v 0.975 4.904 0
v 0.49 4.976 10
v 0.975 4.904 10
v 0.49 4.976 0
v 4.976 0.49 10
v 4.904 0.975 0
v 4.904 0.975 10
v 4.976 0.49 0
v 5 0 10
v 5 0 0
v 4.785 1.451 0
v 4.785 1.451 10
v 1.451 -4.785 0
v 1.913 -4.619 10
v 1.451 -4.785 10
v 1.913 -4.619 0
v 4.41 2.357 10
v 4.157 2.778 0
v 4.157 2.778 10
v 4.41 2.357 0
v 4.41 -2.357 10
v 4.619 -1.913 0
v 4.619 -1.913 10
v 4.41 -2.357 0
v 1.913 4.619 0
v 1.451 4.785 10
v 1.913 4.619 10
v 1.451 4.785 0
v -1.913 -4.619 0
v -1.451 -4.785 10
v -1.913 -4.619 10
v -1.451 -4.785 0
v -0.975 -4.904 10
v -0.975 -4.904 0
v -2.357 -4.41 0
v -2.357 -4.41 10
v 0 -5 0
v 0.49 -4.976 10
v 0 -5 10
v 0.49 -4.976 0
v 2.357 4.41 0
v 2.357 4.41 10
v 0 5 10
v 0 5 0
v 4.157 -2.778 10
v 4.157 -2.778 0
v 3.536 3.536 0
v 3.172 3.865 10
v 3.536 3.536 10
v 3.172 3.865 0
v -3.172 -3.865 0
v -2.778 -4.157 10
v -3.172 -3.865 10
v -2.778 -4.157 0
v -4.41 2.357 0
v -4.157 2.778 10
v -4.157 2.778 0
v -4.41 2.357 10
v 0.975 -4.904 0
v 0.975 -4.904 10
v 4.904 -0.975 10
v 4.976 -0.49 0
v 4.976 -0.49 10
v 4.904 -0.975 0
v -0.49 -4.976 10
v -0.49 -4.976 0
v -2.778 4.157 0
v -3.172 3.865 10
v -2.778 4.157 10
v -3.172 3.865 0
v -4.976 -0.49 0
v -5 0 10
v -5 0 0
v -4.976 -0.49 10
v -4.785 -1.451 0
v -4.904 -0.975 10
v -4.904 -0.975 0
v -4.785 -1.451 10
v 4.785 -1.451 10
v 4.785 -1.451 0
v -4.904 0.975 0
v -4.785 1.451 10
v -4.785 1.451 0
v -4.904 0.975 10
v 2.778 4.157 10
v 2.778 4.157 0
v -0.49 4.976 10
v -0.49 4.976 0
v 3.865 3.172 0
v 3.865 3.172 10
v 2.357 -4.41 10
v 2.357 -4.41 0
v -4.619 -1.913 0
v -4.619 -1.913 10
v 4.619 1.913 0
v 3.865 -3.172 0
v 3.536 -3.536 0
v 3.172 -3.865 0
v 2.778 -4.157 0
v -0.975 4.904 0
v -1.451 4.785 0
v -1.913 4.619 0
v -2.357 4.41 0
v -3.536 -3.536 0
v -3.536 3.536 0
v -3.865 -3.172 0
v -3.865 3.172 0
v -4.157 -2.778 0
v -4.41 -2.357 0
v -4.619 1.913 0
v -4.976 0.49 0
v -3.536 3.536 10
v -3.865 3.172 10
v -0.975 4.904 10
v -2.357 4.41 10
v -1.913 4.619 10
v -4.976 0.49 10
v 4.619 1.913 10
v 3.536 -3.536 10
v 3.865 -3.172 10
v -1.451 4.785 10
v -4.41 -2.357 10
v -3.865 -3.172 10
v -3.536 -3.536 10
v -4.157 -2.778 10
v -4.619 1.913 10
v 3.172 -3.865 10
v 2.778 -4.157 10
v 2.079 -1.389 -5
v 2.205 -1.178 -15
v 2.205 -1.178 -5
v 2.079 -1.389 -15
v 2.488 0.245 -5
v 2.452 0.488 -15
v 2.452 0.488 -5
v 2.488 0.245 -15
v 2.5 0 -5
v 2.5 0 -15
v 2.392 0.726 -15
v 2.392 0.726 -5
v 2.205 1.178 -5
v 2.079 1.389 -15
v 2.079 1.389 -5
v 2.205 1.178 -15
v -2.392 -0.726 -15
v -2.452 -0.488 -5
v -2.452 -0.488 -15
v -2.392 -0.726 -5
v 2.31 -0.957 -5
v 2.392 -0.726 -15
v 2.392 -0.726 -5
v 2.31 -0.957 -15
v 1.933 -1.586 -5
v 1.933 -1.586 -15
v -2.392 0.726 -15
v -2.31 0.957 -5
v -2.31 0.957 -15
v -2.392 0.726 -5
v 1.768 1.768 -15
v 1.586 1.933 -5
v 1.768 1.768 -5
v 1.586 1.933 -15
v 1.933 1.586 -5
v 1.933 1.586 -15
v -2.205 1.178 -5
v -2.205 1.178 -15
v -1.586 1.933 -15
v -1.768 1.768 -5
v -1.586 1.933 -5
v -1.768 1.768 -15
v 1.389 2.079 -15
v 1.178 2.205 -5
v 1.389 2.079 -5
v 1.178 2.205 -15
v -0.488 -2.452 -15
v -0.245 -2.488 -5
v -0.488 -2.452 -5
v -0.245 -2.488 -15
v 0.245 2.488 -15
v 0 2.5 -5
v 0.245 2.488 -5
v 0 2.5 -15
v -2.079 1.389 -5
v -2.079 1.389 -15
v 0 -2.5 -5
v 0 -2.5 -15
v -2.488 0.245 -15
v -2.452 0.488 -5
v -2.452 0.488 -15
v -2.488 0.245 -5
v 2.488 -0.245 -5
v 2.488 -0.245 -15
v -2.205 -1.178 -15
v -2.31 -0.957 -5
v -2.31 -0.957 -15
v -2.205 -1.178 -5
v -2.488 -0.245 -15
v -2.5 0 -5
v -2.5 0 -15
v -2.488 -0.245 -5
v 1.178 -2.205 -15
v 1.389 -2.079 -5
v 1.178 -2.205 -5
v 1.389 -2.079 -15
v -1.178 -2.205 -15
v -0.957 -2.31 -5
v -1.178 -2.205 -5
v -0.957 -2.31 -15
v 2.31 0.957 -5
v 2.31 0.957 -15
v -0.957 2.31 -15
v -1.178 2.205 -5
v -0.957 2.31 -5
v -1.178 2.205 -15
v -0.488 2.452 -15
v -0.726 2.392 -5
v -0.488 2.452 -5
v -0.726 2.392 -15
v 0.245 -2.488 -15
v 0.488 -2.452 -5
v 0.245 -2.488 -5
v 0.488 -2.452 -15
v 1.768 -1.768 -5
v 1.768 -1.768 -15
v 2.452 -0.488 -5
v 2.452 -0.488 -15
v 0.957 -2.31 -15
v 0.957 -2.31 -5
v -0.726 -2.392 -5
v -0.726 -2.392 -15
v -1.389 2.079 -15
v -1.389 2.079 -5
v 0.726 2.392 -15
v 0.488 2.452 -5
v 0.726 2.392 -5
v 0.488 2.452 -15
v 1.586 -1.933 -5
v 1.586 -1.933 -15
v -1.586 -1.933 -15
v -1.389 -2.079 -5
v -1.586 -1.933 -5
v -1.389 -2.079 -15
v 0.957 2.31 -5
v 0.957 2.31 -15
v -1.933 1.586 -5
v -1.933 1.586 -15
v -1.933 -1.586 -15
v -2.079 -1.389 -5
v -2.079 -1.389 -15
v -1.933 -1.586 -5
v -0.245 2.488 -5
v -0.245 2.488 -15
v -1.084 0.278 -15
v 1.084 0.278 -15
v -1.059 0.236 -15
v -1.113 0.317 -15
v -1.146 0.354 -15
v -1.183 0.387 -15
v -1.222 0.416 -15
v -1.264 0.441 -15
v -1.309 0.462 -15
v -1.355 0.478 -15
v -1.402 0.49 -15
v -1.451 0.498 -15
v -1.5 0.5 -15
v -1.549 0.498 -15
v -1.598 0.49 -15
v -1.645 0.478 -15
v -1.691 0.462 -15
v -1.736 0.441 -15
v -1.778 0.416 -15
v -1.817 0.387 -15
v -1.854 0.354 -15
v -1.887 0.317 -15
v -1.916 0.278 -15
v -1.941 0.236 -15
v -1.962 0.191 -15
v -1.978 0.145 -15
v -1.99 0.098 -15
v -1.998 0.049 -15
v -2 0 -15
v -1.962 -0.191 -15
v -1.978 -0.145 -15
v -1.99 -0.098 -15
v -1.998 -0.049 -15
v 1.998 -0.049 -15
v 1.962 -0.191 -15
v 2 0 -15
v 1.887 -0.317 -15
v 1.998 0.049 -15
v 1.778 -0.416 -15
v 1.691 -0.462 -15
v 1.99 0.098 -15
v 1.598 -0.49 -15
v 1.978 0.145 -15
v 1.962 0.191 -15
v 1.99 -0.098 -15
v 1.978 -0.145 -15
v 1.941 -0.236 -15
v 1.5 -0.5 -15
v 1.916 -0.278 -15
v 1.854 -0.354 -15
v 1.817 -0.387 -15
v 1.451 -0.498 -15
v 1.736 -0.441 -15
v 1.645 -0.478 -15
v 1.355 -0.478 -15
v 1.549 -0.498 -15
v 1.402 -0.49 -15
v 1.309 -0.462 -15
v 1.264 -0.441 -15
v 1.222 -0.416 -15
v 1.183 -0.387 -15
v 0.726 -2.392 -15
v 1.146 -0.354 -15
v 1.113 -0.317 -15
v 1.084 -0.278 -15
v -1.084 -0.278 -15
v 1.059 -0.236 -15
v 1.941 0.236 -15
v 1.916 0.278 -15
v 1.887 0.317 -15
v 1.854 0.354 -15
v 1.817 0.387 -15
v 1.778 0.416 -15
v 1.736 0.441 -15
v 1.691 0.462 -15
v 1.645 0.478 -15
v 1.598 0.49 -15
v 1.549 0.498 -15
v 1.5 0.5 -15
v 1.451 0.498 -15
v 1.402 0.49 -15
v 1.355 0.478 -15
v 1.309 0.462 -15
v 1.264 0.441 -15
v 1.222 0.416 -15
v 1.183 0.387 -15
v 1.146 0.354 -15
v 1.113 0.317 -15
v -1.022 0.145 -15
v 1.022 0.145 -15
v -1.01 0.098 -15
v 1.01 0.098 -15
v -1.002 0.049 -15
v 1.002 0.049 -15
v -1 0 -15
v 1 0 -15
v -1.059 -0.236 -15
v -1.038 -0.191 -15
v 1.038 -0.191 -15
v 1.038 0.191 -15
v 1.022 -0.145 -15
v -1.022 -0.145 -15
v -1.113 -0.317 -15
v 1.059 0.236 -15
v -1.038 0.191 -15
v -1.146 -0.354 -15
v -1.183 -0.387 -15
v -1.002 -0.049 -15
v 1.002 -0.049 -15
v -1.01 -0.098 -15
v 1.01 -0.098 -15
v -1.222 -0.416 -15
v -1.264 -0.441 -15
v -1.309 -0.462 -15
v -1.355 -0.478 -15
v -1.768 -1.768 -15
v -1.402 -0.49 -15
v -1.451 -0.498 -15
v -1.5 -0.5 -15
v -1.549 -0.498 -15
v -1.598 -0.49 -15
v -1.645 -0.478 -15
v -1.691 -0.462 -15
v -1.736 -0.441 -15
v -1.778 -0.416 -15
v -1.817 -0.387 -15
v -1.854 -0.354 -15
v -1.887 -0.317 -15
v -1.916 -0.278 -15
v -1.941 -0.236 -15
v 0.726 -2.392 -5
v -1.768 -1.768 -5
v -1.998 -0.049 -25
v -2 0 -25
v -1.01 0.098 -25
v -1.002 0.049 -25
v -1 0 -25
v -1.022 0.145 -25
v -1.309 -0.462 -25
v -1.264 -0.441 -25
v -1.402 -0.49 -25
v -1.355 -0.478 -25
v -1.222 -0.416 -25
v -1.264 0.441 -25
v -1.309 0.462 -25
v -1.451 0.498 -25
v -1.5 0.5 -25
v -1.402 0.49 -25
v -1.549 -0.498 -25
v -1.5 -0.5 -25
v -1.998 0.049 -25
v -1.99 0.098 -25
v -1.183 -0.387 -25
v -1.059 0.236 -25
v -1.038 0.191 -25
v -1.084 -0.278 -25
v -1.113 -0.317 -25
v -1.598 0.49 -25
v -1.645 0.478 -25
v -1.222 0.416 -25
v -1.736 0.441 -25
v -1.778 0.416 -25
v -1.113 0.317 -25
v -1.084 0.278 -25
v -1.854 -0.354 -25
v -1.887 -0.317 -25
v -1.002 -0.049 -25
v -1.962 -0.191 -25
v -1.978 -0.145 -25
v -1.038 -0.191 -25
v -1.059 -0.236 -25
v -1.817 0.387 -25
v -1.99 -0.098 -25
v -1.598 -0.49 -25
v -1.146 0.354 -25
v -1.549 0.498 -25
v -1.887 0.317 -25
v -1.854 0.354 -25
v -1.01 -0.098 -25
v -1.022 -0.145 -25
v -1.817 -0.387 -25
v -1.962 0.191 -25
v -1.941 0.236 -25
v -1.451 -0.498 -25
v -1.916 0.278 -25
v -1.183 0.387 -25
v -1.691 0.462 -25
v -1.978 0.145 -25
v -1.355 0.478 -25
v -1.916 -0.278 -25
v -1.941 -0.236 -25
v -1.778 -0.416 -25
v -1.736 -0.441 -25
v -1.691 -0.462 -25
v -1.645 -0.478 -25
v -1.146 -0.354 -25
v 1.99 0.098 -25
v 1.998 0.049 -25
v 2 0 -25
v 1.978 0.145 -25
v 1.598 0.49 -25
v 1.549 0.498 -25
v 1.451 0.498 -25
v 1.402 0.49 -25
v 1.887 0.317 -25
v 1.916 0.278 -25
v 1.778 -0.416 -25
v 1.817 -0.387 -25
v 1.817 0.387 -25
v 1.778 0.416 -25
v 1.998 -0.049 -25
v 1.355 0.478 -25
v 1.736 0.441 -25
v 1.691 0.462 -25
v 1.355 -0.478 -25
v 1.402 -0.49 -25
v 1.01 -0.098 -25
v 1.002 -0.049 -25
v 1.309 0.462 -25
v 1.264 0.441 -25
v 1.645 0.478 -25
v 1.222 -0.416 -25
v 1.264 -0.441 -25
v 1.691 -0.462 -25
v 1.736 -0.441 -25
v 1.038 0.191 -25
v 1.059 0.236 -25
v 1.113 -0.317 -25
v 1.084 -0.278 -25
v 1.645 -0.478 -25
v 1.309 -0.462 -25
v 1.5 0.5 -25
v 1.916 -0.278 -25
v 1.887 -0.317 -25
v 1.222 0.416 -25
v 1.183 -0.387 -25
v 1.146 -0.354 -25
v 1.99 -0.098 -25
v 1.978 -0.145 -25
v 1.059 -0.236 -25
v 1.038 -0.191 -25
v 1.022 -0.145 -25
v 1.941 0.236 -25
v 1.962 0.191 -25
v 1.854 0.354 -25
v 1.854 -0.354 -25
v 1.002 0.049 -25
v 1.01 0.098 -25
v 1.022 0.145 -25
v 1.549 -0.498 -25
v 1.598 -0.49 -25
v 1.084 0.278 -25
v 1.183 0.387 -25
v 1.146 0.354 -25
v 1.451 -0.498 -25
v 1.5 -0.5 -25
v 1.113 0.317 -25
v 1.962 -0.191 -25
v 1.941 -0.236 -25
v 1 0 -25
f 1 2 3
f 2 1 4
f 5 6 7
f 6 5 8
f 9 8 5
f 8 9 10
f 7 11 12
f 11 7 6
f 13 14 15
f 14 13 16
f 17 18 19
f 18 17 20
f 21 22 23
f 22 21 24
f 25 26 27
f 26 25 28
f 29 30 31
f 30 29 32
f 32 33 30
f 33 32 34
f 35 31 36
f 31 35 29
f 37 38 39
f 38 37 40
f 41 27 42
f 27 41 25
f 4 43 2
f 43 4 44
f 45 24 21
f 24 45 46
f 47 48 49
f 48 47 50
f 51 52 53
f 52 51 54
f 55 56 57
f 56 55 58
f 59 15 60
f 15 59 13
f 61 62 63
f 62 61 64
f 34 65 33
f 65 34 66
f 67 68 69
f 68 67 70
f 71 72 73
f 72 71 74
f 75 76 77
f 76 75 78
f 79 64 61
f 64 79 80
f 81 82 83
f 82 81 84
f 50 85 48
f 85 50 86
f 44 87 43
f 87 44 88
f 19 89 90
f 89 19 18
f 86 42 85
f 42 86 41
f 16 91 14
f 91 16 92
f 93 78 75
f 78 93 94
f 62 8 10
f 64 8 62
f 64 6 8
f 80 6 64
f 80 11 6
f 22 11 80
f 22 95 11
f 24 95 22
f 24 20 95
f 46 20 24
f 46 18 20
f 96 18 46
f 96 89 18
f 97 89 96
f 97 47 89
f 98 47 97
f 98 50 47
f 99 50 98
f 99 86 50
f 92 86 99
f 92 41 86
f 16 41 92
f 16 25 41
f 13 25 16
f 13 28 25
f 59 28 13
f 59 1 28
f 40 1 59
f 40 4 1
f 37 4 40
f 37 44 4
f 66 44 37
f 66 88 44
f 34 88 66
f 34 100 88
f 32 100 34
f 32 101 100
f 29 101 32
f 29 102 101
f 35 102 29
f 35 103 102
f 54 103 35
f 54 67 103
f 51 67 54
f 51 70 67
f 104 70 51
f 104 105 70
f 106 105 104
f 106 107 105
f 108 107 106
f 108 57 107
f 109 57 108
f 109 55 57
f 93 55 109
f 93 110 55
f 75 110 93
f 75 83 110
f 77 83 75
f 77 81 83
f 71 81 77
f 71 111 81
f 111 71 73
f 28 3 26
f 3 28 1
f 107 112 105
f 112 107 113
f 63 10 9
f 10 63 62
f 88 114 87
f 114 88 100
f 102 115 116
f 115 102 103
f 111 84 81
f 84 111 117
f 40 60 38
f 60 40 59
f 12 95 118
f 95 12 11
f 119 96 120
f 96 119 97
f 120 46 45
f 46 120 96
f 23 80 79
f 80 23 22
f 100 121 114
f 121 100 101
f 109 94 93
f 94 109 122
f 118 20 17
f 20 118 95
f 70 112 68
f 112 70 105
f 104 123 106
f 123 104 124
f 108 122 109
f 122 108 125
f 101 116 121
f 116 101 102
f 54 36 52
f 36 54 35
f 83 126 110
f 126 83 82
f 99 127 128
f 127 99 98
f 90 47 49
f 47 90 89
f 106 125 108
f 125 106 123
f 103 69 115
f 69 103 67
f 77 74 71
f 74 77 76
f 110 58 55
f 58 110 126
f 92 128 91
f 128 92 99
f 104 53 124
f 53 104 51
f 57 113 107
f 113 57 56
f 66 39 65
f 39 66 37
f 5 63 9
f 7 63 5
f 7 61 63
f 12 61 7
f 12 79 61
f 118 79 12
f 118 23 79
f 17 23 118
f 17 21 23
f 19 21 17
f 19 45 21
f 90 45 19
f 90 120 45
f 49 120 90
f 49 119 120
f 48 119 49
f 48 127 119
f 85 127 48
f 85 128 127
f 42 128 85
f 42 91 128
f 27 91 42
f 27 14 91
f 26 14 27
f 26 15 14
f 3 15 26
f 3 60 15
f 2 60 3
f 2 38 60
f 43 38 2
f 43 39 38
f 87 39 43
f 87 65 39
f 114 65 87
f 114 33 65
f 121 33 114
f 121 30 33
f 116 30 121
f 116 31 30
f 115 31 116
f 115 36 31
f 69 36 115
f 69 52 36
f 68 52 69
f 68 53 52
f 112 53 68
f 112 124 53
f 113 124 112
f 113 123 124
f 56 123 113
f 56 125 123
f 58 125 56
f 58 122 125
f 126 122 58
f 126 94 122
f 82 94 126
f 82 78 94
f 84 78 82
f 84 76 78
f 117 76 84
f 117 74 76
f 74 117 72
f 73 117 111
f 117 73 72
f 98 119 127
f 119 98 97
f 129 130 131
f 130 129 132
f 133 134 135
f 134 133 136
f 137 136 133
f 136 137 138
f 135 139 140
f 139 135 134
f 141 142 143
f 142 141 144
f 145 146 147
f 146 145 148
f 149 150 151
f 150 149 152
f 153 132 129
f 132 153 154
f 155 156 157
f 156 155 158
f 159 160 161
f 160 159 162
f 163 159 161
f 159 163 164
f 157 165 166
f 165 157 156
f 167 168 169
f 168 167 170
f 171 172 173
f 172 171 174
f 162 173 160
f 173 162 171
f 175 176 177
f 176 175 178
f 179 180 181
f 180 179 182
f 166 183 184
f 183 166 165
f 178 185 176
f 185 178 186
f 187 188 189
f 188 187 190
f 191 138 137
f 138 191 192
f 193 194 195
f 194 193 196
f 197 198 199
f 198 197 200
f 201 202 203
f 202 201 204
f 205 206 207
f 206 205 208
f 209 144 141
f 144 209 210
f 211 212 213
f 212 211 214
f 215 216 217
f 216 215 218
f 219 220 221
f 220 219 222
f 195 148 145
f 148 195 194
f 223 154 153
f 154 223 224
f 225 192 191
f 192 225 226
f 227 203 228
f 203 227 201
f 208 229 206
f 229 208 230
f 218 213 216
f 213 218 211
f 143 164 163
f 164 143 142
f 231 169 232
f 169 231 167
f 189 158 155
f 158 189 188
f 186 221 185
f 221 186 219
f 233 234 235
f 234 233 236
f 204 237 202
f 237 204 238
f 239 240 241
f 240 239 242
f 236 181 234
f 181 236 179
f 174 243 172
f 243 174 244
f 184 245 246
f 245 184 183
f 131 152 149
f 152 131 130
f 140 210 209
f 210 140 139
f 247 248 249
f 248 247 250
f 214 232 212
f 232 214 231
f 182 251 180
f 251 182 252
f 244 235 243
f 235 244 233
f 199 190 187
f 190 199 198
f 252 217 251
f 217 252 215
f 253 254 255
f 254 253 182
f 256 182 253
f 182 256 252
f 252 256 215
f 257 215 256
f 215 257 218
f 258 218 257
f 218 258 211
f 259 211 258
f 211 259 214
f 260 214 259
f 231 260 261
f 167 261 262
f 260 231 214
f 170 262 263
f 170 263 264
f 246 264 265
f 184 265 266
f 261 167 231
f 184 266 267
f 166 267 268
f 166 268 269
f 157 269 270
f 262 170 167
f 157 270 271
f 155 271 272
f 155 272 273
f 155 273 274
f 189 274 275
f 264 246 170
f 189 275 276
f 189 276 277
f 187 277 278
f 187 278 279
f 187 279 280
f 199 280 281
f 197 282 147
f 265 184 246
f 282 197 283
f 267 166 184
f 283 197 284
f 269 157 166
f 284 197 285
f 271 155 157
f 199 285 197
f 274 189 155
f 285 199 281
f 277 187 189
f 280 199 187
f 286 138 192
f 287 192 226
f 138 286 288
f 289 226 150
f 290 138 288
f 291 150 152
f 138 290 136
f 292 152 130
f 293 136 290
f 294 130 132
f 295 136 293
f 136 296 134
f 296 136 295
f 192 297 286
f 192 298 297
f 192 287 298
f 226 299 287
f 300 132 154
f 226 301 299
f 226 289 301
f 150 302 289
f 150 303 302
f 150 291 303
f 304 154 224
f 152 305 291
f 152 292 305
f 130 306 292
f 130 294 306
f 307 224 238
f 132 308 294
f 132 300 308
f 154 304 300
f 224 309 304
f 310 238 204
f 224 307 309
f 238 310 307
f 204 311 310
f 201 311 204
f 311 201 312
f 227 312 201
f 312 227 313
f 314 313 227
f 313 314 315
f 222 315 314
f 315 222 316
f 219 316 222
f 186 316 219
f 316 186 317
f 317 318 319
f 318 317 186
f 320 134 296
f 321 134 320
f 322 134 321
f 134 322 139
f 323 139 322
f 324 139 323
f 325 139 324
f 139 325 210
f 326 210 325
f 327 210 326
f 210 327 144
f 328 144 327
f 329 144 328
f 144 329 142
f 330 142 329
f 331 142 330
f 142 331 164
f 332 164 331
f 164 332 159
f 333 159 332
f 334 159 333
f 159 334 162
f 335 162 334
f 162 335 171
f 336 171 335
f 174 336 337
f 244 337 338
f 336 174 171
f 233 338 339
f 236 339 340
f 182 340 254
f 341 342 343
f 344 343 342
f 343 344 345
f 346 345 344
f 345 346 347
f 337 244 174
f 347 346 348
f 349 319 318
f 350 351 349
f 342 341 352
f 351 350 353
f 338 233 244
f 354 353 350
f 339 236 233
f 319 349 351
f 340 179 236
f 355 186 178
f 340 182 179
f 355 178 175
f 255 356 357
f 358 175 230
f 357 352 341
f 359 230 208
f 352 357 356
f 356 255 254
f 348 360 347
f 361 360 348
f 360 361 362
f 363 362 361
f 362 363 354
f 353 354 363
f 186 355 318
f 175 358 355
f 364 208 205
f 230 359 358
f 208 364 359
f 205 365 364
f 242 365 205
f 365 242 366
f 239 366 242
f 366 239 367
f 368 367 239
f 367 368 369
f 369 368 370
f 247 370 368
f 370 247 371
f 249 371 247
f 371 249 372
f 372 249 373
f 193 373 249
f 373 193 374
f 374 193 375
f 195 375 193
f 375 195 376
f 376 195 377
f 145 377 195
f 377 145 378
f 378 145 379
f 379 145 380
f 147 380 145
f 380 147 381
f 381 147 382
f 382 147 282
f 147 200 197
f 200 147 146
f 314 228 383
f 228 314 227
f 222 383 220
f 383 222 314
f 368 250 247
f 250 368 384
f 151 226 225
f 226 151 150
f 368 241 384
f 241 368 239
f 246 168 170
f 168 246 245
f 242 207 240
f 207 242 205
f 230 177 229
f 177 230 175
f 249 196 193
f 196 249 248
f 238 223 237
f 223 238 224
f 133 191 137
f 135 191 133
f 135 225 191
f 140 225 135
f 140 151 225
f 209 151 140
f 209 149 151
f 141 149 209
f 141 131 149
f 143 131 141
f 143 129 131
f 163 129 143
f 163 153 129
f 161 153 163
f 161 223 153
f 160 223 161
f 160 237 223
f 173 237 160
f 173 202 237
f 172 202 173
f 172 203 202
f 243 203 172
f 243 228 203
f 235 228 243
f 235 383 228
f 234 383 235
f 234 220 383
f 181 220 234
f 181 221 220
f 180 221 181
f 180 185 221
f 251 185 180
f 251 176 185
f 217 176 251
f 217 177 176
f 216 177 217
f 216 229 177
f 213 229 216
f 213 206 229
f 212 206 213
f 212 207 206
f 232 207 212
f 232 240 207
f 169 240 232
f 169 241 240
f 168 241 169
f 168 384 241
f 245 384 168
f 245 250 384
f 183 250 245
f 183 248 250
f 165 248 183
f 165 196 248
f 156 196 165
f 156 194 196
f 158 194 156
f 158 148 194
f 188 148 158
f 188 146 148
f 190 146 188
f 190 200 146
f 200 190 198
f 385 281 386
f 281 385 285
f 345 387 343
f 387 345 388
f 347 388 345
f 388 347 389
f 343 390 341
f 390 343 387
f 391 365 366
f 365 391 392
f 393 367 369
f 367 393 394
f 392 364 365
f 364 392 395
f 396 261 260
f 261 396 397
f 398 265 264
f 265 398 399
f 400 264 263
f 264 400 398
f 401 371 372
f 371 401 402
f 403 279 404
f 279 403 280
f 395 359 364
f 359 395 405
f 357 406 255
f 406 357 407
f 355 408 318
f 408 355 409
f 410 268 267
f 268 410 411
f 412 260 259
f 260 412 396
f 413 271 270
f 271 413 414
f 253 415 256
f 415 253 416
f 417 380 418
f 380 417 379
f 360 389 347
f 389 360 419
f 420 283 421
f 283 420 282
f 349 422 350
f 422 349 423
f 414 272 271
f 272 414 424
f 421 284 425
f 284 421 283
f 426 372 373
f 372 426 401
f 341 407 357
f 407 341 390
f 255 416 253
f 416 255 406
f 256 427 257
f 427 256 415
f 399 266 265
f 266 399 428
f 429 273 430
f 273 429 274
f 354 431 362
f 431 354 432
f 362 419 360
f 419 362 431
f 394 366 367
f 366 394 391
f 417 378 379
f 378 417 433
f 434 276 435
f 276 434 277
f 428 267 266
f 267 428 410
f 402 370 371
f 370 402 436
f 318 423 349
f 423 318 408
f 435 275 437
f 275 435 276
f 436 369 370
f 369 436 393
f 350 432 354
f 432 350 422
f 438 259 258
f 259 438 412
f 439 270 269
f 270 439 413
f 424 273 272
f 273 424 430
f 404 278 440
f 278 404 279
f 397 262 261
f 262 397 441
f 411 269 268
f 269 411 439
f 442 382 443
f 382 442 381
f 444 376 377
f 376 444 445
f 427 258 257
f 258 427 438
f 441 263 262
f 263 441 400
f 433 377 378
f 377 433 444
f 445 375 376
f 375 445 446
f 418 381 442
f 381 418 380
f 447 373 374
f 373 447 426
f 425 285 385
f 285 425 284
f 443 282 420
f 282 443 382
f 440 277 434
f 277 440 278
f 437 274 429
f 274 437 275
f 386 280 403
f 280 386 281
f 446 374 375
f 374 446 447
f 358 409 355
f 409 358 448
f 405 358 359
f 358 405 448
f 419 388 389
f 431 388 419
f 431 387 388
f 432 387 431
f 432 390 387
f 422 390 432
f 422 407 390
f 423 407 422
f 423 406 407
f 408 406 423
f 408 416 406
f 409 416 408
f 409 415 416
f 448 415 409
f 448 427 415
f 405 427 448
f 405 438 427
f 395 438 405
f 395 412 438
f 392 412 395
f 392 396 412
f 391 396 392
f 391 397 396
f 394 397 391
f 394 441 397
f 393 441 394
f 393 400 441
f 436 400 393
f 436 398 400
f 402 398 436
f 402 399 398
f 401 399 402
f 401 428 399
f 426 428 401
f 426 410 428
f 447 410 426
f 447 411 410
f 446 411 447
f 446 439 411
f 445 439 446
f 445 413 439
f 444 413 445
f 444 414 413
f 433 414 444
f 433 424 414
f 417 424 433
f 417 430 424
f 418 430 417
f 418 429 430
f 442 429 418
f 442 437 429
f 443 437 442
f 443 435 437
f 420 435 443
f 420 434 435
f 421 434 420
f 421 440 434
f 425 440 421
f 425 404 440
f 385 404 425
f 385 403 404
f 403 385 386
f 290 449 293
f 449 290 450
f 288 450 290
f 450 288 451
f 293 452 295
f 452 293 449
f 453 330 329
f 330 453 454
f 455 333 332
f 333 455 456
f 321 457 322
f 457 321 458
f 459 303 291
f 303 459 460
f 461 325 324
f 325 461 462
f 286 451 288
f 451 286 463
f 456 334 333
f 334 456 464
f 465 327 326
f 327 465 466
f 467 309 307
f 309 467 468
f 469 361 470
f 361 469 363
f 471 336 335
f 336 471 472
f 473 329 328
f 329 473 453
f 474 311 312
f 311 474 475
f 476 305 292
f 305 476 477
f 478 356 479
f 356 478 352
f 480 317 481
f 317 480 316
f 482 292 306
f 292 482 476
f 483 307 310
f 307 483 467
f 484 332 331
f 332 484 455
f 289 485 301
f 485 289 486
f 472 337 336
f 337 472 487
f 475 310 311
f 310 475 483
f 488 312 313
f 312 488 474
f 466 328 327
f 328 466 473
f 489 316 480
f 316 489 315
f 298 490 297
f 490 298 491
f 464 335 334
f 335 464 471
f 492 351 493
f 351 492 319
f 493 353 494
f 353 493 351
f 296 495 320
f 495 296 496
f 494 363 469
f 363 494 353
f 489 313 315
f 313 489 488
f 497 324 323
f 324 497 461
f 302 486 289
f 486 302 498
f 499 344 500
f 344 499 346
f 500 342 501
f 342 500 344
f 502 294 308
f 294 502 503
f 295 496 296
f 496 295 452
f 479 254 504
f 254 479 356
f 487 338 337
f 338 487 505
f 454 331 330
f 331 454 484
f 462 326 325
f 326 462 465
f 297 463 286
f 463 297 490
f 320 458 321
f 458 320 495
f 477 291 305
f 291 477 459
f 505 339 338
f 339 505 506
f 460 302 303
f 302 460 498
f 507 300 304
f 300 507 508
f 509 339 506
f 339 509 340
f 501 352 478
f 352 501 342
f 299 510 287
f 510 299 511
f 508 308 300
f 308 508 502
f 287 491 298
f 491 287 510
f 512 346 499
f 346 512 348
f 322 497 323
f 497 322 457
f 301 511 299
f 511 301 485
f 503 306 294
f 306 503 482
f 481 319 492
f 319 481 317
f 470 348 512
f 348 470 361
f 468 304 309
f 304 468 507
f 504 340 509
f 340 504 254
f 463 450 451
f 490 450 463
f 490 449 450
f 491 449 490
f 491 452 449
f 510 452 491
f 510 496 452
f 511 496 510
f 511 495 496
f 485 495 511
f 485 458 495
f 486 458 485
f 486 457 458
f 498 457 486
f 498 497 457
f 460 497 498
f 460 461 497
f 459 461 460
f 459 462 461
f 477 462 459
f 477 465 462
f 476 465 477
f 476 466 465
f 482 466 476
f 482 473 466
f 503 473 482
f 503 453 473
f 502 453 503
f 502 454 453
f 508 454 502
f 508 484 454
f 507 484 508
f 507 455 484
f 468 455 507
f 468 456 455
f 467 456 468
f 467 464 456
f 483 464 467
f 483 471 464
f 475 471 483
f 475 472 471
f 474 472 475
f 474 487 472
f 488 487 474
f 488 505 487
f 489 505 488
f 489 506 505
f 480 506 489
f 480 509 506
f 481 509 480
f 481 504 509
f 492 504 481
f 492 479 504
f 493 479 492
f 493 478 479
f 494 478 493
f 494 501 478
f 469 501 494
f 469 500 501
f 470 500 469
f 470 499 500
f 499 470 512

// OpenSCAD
$fn = 64;

module led() {
    // Lens
    translate([0, 0, 5])
        cylinder(h = 10, d = 10, center = true);

    // Body
    translate([0, 0, -10])
        cylinder(h = 10, d = 5, center = true);

    // Leads
    translate([-1.5, 0, -20])
        cylinder(h = 10, d = 1, center = true);
    translate([1.5, 0, -20])
        cylinder(h = 10, d = 1, center = true);
}

led();
